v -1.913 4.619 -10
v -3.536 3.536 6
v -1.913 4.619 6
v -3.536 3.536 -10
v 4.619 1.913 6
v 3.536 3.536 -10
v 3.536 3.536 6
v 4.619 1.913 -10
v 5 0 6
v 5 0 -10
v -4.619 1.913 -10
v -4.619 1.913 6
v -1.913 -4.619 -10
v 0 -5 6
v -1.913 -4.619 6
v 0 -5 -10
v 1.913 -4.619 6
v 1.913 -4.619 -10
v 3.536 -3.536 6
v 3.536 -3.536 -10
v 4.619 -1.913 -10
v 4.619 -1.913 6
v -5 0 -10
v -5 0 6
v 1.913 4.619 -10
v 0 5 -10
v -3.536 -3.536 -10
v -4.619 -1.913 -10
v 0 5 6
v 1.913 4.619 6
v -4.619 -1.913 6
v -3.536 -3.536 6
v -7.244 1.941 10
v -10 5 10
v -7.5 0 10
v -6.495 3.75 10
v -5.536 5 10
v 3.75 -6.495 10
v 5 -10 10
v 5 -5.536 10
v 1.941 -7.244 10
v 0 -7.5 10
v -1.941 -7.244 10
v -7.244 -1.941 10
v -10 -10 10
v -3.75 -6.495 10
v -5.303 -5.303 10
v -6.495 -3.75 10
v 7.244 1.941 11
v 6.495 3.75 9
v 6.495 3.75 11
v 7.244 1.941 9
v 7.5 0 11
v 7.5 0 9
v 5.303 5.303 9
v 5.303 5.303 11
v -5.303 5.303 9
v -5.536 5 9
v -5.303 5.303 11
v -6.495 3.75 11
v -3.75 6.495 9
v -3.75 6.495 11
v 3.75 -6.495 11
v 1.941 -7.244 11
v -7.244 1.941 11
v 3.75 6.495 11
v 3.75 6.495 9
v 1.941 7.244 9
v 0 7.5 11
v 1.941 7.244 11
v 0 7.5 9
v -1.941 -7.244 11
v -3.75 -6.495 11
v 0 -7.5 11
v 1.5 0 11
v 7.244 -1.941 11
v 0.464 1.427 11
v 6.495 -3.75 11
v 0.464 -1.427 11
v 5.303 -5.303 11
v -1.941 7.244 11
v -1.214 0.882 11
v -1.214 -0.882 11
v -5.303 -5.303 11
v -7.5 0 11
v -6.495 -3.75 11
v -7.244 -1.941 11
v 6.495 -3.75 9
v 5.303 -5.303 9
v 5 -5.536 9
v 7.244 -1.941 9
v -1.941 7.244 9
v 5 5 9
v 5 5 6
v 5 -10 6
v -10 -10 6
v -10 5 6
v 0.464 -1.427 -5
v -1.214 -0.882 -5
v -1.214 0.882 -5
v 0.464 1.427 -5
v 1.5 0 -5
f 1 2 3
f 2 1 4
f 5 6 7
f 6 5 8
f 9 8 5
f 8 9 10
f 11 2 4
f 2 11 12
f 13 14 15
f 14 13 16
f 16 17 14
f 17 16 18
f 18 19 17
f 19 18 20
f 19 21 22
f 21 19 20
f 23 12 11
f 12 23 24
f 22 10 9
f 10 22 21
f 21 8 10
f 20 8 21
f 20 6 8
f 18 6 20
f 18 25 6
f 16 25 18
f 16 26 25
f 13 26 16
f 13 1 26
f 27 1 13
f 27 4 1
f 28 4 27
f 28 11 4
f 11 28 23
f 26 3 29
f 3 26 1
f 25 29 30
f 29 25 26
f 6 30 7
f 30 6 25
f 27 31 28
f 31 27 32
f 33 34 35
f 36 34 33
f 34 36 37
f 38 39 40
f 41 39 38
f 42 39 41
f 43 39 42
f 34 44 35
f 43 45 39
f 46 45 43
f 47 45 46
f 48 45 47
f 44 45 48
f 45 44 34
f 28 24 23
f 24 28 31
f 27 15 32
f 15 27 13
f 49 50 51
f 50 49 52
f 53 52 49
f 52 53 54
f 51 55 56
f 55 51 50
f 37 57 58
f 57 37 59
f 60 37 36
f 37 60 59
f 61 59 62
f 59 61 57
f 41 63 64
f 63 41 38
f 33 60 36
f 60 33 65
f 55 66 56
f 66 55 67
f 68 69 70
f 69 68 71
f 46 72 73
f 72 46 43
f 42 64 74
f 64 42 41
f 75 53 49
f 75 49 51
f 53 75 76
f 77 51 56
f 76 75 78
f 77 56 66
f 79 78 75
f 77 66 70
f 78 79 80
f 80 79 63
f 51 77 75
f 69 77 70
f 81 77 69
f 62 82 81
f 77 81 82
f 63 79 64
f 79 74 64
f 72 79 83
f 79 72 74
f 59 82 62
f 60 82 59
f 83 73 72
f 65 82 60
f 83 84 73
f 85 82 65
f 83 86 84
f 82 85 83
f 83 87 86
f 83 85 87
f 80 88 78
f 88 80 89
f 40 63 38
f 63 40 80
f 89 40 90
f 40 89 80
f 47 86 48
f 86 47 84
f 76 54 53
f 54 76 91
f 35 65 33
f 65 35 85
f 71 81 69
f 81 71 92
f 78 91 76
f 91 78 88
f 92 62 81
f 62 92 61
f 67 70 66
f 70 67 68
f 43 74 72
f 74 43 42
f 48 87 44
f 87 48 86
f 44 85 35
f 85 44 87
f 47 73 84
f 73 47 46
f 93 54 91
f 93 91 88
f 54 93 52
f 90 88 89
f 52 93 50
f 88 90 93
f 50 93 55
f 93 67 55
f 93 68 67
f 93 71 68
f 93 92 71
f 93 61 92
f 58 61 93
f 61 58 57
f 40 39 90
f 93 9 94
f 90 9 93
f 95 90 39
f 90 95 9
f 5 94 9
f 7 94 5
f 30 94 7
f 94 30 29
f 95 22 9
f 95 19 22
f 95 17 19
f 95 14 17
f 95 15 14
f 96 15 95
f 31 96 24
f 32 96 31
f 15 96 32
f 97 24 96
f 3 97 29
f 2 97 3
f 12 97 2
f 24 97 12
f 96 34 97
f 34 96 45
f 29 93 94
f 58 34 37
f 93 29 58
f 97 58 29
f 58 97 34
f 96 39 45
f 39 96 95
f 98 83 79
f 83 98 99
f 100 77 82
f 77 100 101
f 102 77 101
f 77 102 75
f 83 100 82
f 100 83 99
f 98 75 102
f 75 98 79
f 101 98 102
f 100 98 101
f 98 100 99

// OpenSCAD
module main_object() {
    difference() {
        union() {
            // Main cylinder
            cylinder(h = 20, d = 10, center = true);

            // Middle disc
            translate([0, 0, 10])
                cylinder(h = 2, d = 15, center = true);
                
            // Ring around the middle
            translate([-2.5, -2.5, 8])
                cube([15, 15, 4], center = true);

            // Additional details could be added here
            // Example - Extrusion or smaller shapes for visual alignment
        }
        // Holes or cuts (e.g., for screws, design details, etc.)
        translate([0, 0, 10])
            cylinder(h = 30, d = 3, center = true);
    }
}

main_object();
